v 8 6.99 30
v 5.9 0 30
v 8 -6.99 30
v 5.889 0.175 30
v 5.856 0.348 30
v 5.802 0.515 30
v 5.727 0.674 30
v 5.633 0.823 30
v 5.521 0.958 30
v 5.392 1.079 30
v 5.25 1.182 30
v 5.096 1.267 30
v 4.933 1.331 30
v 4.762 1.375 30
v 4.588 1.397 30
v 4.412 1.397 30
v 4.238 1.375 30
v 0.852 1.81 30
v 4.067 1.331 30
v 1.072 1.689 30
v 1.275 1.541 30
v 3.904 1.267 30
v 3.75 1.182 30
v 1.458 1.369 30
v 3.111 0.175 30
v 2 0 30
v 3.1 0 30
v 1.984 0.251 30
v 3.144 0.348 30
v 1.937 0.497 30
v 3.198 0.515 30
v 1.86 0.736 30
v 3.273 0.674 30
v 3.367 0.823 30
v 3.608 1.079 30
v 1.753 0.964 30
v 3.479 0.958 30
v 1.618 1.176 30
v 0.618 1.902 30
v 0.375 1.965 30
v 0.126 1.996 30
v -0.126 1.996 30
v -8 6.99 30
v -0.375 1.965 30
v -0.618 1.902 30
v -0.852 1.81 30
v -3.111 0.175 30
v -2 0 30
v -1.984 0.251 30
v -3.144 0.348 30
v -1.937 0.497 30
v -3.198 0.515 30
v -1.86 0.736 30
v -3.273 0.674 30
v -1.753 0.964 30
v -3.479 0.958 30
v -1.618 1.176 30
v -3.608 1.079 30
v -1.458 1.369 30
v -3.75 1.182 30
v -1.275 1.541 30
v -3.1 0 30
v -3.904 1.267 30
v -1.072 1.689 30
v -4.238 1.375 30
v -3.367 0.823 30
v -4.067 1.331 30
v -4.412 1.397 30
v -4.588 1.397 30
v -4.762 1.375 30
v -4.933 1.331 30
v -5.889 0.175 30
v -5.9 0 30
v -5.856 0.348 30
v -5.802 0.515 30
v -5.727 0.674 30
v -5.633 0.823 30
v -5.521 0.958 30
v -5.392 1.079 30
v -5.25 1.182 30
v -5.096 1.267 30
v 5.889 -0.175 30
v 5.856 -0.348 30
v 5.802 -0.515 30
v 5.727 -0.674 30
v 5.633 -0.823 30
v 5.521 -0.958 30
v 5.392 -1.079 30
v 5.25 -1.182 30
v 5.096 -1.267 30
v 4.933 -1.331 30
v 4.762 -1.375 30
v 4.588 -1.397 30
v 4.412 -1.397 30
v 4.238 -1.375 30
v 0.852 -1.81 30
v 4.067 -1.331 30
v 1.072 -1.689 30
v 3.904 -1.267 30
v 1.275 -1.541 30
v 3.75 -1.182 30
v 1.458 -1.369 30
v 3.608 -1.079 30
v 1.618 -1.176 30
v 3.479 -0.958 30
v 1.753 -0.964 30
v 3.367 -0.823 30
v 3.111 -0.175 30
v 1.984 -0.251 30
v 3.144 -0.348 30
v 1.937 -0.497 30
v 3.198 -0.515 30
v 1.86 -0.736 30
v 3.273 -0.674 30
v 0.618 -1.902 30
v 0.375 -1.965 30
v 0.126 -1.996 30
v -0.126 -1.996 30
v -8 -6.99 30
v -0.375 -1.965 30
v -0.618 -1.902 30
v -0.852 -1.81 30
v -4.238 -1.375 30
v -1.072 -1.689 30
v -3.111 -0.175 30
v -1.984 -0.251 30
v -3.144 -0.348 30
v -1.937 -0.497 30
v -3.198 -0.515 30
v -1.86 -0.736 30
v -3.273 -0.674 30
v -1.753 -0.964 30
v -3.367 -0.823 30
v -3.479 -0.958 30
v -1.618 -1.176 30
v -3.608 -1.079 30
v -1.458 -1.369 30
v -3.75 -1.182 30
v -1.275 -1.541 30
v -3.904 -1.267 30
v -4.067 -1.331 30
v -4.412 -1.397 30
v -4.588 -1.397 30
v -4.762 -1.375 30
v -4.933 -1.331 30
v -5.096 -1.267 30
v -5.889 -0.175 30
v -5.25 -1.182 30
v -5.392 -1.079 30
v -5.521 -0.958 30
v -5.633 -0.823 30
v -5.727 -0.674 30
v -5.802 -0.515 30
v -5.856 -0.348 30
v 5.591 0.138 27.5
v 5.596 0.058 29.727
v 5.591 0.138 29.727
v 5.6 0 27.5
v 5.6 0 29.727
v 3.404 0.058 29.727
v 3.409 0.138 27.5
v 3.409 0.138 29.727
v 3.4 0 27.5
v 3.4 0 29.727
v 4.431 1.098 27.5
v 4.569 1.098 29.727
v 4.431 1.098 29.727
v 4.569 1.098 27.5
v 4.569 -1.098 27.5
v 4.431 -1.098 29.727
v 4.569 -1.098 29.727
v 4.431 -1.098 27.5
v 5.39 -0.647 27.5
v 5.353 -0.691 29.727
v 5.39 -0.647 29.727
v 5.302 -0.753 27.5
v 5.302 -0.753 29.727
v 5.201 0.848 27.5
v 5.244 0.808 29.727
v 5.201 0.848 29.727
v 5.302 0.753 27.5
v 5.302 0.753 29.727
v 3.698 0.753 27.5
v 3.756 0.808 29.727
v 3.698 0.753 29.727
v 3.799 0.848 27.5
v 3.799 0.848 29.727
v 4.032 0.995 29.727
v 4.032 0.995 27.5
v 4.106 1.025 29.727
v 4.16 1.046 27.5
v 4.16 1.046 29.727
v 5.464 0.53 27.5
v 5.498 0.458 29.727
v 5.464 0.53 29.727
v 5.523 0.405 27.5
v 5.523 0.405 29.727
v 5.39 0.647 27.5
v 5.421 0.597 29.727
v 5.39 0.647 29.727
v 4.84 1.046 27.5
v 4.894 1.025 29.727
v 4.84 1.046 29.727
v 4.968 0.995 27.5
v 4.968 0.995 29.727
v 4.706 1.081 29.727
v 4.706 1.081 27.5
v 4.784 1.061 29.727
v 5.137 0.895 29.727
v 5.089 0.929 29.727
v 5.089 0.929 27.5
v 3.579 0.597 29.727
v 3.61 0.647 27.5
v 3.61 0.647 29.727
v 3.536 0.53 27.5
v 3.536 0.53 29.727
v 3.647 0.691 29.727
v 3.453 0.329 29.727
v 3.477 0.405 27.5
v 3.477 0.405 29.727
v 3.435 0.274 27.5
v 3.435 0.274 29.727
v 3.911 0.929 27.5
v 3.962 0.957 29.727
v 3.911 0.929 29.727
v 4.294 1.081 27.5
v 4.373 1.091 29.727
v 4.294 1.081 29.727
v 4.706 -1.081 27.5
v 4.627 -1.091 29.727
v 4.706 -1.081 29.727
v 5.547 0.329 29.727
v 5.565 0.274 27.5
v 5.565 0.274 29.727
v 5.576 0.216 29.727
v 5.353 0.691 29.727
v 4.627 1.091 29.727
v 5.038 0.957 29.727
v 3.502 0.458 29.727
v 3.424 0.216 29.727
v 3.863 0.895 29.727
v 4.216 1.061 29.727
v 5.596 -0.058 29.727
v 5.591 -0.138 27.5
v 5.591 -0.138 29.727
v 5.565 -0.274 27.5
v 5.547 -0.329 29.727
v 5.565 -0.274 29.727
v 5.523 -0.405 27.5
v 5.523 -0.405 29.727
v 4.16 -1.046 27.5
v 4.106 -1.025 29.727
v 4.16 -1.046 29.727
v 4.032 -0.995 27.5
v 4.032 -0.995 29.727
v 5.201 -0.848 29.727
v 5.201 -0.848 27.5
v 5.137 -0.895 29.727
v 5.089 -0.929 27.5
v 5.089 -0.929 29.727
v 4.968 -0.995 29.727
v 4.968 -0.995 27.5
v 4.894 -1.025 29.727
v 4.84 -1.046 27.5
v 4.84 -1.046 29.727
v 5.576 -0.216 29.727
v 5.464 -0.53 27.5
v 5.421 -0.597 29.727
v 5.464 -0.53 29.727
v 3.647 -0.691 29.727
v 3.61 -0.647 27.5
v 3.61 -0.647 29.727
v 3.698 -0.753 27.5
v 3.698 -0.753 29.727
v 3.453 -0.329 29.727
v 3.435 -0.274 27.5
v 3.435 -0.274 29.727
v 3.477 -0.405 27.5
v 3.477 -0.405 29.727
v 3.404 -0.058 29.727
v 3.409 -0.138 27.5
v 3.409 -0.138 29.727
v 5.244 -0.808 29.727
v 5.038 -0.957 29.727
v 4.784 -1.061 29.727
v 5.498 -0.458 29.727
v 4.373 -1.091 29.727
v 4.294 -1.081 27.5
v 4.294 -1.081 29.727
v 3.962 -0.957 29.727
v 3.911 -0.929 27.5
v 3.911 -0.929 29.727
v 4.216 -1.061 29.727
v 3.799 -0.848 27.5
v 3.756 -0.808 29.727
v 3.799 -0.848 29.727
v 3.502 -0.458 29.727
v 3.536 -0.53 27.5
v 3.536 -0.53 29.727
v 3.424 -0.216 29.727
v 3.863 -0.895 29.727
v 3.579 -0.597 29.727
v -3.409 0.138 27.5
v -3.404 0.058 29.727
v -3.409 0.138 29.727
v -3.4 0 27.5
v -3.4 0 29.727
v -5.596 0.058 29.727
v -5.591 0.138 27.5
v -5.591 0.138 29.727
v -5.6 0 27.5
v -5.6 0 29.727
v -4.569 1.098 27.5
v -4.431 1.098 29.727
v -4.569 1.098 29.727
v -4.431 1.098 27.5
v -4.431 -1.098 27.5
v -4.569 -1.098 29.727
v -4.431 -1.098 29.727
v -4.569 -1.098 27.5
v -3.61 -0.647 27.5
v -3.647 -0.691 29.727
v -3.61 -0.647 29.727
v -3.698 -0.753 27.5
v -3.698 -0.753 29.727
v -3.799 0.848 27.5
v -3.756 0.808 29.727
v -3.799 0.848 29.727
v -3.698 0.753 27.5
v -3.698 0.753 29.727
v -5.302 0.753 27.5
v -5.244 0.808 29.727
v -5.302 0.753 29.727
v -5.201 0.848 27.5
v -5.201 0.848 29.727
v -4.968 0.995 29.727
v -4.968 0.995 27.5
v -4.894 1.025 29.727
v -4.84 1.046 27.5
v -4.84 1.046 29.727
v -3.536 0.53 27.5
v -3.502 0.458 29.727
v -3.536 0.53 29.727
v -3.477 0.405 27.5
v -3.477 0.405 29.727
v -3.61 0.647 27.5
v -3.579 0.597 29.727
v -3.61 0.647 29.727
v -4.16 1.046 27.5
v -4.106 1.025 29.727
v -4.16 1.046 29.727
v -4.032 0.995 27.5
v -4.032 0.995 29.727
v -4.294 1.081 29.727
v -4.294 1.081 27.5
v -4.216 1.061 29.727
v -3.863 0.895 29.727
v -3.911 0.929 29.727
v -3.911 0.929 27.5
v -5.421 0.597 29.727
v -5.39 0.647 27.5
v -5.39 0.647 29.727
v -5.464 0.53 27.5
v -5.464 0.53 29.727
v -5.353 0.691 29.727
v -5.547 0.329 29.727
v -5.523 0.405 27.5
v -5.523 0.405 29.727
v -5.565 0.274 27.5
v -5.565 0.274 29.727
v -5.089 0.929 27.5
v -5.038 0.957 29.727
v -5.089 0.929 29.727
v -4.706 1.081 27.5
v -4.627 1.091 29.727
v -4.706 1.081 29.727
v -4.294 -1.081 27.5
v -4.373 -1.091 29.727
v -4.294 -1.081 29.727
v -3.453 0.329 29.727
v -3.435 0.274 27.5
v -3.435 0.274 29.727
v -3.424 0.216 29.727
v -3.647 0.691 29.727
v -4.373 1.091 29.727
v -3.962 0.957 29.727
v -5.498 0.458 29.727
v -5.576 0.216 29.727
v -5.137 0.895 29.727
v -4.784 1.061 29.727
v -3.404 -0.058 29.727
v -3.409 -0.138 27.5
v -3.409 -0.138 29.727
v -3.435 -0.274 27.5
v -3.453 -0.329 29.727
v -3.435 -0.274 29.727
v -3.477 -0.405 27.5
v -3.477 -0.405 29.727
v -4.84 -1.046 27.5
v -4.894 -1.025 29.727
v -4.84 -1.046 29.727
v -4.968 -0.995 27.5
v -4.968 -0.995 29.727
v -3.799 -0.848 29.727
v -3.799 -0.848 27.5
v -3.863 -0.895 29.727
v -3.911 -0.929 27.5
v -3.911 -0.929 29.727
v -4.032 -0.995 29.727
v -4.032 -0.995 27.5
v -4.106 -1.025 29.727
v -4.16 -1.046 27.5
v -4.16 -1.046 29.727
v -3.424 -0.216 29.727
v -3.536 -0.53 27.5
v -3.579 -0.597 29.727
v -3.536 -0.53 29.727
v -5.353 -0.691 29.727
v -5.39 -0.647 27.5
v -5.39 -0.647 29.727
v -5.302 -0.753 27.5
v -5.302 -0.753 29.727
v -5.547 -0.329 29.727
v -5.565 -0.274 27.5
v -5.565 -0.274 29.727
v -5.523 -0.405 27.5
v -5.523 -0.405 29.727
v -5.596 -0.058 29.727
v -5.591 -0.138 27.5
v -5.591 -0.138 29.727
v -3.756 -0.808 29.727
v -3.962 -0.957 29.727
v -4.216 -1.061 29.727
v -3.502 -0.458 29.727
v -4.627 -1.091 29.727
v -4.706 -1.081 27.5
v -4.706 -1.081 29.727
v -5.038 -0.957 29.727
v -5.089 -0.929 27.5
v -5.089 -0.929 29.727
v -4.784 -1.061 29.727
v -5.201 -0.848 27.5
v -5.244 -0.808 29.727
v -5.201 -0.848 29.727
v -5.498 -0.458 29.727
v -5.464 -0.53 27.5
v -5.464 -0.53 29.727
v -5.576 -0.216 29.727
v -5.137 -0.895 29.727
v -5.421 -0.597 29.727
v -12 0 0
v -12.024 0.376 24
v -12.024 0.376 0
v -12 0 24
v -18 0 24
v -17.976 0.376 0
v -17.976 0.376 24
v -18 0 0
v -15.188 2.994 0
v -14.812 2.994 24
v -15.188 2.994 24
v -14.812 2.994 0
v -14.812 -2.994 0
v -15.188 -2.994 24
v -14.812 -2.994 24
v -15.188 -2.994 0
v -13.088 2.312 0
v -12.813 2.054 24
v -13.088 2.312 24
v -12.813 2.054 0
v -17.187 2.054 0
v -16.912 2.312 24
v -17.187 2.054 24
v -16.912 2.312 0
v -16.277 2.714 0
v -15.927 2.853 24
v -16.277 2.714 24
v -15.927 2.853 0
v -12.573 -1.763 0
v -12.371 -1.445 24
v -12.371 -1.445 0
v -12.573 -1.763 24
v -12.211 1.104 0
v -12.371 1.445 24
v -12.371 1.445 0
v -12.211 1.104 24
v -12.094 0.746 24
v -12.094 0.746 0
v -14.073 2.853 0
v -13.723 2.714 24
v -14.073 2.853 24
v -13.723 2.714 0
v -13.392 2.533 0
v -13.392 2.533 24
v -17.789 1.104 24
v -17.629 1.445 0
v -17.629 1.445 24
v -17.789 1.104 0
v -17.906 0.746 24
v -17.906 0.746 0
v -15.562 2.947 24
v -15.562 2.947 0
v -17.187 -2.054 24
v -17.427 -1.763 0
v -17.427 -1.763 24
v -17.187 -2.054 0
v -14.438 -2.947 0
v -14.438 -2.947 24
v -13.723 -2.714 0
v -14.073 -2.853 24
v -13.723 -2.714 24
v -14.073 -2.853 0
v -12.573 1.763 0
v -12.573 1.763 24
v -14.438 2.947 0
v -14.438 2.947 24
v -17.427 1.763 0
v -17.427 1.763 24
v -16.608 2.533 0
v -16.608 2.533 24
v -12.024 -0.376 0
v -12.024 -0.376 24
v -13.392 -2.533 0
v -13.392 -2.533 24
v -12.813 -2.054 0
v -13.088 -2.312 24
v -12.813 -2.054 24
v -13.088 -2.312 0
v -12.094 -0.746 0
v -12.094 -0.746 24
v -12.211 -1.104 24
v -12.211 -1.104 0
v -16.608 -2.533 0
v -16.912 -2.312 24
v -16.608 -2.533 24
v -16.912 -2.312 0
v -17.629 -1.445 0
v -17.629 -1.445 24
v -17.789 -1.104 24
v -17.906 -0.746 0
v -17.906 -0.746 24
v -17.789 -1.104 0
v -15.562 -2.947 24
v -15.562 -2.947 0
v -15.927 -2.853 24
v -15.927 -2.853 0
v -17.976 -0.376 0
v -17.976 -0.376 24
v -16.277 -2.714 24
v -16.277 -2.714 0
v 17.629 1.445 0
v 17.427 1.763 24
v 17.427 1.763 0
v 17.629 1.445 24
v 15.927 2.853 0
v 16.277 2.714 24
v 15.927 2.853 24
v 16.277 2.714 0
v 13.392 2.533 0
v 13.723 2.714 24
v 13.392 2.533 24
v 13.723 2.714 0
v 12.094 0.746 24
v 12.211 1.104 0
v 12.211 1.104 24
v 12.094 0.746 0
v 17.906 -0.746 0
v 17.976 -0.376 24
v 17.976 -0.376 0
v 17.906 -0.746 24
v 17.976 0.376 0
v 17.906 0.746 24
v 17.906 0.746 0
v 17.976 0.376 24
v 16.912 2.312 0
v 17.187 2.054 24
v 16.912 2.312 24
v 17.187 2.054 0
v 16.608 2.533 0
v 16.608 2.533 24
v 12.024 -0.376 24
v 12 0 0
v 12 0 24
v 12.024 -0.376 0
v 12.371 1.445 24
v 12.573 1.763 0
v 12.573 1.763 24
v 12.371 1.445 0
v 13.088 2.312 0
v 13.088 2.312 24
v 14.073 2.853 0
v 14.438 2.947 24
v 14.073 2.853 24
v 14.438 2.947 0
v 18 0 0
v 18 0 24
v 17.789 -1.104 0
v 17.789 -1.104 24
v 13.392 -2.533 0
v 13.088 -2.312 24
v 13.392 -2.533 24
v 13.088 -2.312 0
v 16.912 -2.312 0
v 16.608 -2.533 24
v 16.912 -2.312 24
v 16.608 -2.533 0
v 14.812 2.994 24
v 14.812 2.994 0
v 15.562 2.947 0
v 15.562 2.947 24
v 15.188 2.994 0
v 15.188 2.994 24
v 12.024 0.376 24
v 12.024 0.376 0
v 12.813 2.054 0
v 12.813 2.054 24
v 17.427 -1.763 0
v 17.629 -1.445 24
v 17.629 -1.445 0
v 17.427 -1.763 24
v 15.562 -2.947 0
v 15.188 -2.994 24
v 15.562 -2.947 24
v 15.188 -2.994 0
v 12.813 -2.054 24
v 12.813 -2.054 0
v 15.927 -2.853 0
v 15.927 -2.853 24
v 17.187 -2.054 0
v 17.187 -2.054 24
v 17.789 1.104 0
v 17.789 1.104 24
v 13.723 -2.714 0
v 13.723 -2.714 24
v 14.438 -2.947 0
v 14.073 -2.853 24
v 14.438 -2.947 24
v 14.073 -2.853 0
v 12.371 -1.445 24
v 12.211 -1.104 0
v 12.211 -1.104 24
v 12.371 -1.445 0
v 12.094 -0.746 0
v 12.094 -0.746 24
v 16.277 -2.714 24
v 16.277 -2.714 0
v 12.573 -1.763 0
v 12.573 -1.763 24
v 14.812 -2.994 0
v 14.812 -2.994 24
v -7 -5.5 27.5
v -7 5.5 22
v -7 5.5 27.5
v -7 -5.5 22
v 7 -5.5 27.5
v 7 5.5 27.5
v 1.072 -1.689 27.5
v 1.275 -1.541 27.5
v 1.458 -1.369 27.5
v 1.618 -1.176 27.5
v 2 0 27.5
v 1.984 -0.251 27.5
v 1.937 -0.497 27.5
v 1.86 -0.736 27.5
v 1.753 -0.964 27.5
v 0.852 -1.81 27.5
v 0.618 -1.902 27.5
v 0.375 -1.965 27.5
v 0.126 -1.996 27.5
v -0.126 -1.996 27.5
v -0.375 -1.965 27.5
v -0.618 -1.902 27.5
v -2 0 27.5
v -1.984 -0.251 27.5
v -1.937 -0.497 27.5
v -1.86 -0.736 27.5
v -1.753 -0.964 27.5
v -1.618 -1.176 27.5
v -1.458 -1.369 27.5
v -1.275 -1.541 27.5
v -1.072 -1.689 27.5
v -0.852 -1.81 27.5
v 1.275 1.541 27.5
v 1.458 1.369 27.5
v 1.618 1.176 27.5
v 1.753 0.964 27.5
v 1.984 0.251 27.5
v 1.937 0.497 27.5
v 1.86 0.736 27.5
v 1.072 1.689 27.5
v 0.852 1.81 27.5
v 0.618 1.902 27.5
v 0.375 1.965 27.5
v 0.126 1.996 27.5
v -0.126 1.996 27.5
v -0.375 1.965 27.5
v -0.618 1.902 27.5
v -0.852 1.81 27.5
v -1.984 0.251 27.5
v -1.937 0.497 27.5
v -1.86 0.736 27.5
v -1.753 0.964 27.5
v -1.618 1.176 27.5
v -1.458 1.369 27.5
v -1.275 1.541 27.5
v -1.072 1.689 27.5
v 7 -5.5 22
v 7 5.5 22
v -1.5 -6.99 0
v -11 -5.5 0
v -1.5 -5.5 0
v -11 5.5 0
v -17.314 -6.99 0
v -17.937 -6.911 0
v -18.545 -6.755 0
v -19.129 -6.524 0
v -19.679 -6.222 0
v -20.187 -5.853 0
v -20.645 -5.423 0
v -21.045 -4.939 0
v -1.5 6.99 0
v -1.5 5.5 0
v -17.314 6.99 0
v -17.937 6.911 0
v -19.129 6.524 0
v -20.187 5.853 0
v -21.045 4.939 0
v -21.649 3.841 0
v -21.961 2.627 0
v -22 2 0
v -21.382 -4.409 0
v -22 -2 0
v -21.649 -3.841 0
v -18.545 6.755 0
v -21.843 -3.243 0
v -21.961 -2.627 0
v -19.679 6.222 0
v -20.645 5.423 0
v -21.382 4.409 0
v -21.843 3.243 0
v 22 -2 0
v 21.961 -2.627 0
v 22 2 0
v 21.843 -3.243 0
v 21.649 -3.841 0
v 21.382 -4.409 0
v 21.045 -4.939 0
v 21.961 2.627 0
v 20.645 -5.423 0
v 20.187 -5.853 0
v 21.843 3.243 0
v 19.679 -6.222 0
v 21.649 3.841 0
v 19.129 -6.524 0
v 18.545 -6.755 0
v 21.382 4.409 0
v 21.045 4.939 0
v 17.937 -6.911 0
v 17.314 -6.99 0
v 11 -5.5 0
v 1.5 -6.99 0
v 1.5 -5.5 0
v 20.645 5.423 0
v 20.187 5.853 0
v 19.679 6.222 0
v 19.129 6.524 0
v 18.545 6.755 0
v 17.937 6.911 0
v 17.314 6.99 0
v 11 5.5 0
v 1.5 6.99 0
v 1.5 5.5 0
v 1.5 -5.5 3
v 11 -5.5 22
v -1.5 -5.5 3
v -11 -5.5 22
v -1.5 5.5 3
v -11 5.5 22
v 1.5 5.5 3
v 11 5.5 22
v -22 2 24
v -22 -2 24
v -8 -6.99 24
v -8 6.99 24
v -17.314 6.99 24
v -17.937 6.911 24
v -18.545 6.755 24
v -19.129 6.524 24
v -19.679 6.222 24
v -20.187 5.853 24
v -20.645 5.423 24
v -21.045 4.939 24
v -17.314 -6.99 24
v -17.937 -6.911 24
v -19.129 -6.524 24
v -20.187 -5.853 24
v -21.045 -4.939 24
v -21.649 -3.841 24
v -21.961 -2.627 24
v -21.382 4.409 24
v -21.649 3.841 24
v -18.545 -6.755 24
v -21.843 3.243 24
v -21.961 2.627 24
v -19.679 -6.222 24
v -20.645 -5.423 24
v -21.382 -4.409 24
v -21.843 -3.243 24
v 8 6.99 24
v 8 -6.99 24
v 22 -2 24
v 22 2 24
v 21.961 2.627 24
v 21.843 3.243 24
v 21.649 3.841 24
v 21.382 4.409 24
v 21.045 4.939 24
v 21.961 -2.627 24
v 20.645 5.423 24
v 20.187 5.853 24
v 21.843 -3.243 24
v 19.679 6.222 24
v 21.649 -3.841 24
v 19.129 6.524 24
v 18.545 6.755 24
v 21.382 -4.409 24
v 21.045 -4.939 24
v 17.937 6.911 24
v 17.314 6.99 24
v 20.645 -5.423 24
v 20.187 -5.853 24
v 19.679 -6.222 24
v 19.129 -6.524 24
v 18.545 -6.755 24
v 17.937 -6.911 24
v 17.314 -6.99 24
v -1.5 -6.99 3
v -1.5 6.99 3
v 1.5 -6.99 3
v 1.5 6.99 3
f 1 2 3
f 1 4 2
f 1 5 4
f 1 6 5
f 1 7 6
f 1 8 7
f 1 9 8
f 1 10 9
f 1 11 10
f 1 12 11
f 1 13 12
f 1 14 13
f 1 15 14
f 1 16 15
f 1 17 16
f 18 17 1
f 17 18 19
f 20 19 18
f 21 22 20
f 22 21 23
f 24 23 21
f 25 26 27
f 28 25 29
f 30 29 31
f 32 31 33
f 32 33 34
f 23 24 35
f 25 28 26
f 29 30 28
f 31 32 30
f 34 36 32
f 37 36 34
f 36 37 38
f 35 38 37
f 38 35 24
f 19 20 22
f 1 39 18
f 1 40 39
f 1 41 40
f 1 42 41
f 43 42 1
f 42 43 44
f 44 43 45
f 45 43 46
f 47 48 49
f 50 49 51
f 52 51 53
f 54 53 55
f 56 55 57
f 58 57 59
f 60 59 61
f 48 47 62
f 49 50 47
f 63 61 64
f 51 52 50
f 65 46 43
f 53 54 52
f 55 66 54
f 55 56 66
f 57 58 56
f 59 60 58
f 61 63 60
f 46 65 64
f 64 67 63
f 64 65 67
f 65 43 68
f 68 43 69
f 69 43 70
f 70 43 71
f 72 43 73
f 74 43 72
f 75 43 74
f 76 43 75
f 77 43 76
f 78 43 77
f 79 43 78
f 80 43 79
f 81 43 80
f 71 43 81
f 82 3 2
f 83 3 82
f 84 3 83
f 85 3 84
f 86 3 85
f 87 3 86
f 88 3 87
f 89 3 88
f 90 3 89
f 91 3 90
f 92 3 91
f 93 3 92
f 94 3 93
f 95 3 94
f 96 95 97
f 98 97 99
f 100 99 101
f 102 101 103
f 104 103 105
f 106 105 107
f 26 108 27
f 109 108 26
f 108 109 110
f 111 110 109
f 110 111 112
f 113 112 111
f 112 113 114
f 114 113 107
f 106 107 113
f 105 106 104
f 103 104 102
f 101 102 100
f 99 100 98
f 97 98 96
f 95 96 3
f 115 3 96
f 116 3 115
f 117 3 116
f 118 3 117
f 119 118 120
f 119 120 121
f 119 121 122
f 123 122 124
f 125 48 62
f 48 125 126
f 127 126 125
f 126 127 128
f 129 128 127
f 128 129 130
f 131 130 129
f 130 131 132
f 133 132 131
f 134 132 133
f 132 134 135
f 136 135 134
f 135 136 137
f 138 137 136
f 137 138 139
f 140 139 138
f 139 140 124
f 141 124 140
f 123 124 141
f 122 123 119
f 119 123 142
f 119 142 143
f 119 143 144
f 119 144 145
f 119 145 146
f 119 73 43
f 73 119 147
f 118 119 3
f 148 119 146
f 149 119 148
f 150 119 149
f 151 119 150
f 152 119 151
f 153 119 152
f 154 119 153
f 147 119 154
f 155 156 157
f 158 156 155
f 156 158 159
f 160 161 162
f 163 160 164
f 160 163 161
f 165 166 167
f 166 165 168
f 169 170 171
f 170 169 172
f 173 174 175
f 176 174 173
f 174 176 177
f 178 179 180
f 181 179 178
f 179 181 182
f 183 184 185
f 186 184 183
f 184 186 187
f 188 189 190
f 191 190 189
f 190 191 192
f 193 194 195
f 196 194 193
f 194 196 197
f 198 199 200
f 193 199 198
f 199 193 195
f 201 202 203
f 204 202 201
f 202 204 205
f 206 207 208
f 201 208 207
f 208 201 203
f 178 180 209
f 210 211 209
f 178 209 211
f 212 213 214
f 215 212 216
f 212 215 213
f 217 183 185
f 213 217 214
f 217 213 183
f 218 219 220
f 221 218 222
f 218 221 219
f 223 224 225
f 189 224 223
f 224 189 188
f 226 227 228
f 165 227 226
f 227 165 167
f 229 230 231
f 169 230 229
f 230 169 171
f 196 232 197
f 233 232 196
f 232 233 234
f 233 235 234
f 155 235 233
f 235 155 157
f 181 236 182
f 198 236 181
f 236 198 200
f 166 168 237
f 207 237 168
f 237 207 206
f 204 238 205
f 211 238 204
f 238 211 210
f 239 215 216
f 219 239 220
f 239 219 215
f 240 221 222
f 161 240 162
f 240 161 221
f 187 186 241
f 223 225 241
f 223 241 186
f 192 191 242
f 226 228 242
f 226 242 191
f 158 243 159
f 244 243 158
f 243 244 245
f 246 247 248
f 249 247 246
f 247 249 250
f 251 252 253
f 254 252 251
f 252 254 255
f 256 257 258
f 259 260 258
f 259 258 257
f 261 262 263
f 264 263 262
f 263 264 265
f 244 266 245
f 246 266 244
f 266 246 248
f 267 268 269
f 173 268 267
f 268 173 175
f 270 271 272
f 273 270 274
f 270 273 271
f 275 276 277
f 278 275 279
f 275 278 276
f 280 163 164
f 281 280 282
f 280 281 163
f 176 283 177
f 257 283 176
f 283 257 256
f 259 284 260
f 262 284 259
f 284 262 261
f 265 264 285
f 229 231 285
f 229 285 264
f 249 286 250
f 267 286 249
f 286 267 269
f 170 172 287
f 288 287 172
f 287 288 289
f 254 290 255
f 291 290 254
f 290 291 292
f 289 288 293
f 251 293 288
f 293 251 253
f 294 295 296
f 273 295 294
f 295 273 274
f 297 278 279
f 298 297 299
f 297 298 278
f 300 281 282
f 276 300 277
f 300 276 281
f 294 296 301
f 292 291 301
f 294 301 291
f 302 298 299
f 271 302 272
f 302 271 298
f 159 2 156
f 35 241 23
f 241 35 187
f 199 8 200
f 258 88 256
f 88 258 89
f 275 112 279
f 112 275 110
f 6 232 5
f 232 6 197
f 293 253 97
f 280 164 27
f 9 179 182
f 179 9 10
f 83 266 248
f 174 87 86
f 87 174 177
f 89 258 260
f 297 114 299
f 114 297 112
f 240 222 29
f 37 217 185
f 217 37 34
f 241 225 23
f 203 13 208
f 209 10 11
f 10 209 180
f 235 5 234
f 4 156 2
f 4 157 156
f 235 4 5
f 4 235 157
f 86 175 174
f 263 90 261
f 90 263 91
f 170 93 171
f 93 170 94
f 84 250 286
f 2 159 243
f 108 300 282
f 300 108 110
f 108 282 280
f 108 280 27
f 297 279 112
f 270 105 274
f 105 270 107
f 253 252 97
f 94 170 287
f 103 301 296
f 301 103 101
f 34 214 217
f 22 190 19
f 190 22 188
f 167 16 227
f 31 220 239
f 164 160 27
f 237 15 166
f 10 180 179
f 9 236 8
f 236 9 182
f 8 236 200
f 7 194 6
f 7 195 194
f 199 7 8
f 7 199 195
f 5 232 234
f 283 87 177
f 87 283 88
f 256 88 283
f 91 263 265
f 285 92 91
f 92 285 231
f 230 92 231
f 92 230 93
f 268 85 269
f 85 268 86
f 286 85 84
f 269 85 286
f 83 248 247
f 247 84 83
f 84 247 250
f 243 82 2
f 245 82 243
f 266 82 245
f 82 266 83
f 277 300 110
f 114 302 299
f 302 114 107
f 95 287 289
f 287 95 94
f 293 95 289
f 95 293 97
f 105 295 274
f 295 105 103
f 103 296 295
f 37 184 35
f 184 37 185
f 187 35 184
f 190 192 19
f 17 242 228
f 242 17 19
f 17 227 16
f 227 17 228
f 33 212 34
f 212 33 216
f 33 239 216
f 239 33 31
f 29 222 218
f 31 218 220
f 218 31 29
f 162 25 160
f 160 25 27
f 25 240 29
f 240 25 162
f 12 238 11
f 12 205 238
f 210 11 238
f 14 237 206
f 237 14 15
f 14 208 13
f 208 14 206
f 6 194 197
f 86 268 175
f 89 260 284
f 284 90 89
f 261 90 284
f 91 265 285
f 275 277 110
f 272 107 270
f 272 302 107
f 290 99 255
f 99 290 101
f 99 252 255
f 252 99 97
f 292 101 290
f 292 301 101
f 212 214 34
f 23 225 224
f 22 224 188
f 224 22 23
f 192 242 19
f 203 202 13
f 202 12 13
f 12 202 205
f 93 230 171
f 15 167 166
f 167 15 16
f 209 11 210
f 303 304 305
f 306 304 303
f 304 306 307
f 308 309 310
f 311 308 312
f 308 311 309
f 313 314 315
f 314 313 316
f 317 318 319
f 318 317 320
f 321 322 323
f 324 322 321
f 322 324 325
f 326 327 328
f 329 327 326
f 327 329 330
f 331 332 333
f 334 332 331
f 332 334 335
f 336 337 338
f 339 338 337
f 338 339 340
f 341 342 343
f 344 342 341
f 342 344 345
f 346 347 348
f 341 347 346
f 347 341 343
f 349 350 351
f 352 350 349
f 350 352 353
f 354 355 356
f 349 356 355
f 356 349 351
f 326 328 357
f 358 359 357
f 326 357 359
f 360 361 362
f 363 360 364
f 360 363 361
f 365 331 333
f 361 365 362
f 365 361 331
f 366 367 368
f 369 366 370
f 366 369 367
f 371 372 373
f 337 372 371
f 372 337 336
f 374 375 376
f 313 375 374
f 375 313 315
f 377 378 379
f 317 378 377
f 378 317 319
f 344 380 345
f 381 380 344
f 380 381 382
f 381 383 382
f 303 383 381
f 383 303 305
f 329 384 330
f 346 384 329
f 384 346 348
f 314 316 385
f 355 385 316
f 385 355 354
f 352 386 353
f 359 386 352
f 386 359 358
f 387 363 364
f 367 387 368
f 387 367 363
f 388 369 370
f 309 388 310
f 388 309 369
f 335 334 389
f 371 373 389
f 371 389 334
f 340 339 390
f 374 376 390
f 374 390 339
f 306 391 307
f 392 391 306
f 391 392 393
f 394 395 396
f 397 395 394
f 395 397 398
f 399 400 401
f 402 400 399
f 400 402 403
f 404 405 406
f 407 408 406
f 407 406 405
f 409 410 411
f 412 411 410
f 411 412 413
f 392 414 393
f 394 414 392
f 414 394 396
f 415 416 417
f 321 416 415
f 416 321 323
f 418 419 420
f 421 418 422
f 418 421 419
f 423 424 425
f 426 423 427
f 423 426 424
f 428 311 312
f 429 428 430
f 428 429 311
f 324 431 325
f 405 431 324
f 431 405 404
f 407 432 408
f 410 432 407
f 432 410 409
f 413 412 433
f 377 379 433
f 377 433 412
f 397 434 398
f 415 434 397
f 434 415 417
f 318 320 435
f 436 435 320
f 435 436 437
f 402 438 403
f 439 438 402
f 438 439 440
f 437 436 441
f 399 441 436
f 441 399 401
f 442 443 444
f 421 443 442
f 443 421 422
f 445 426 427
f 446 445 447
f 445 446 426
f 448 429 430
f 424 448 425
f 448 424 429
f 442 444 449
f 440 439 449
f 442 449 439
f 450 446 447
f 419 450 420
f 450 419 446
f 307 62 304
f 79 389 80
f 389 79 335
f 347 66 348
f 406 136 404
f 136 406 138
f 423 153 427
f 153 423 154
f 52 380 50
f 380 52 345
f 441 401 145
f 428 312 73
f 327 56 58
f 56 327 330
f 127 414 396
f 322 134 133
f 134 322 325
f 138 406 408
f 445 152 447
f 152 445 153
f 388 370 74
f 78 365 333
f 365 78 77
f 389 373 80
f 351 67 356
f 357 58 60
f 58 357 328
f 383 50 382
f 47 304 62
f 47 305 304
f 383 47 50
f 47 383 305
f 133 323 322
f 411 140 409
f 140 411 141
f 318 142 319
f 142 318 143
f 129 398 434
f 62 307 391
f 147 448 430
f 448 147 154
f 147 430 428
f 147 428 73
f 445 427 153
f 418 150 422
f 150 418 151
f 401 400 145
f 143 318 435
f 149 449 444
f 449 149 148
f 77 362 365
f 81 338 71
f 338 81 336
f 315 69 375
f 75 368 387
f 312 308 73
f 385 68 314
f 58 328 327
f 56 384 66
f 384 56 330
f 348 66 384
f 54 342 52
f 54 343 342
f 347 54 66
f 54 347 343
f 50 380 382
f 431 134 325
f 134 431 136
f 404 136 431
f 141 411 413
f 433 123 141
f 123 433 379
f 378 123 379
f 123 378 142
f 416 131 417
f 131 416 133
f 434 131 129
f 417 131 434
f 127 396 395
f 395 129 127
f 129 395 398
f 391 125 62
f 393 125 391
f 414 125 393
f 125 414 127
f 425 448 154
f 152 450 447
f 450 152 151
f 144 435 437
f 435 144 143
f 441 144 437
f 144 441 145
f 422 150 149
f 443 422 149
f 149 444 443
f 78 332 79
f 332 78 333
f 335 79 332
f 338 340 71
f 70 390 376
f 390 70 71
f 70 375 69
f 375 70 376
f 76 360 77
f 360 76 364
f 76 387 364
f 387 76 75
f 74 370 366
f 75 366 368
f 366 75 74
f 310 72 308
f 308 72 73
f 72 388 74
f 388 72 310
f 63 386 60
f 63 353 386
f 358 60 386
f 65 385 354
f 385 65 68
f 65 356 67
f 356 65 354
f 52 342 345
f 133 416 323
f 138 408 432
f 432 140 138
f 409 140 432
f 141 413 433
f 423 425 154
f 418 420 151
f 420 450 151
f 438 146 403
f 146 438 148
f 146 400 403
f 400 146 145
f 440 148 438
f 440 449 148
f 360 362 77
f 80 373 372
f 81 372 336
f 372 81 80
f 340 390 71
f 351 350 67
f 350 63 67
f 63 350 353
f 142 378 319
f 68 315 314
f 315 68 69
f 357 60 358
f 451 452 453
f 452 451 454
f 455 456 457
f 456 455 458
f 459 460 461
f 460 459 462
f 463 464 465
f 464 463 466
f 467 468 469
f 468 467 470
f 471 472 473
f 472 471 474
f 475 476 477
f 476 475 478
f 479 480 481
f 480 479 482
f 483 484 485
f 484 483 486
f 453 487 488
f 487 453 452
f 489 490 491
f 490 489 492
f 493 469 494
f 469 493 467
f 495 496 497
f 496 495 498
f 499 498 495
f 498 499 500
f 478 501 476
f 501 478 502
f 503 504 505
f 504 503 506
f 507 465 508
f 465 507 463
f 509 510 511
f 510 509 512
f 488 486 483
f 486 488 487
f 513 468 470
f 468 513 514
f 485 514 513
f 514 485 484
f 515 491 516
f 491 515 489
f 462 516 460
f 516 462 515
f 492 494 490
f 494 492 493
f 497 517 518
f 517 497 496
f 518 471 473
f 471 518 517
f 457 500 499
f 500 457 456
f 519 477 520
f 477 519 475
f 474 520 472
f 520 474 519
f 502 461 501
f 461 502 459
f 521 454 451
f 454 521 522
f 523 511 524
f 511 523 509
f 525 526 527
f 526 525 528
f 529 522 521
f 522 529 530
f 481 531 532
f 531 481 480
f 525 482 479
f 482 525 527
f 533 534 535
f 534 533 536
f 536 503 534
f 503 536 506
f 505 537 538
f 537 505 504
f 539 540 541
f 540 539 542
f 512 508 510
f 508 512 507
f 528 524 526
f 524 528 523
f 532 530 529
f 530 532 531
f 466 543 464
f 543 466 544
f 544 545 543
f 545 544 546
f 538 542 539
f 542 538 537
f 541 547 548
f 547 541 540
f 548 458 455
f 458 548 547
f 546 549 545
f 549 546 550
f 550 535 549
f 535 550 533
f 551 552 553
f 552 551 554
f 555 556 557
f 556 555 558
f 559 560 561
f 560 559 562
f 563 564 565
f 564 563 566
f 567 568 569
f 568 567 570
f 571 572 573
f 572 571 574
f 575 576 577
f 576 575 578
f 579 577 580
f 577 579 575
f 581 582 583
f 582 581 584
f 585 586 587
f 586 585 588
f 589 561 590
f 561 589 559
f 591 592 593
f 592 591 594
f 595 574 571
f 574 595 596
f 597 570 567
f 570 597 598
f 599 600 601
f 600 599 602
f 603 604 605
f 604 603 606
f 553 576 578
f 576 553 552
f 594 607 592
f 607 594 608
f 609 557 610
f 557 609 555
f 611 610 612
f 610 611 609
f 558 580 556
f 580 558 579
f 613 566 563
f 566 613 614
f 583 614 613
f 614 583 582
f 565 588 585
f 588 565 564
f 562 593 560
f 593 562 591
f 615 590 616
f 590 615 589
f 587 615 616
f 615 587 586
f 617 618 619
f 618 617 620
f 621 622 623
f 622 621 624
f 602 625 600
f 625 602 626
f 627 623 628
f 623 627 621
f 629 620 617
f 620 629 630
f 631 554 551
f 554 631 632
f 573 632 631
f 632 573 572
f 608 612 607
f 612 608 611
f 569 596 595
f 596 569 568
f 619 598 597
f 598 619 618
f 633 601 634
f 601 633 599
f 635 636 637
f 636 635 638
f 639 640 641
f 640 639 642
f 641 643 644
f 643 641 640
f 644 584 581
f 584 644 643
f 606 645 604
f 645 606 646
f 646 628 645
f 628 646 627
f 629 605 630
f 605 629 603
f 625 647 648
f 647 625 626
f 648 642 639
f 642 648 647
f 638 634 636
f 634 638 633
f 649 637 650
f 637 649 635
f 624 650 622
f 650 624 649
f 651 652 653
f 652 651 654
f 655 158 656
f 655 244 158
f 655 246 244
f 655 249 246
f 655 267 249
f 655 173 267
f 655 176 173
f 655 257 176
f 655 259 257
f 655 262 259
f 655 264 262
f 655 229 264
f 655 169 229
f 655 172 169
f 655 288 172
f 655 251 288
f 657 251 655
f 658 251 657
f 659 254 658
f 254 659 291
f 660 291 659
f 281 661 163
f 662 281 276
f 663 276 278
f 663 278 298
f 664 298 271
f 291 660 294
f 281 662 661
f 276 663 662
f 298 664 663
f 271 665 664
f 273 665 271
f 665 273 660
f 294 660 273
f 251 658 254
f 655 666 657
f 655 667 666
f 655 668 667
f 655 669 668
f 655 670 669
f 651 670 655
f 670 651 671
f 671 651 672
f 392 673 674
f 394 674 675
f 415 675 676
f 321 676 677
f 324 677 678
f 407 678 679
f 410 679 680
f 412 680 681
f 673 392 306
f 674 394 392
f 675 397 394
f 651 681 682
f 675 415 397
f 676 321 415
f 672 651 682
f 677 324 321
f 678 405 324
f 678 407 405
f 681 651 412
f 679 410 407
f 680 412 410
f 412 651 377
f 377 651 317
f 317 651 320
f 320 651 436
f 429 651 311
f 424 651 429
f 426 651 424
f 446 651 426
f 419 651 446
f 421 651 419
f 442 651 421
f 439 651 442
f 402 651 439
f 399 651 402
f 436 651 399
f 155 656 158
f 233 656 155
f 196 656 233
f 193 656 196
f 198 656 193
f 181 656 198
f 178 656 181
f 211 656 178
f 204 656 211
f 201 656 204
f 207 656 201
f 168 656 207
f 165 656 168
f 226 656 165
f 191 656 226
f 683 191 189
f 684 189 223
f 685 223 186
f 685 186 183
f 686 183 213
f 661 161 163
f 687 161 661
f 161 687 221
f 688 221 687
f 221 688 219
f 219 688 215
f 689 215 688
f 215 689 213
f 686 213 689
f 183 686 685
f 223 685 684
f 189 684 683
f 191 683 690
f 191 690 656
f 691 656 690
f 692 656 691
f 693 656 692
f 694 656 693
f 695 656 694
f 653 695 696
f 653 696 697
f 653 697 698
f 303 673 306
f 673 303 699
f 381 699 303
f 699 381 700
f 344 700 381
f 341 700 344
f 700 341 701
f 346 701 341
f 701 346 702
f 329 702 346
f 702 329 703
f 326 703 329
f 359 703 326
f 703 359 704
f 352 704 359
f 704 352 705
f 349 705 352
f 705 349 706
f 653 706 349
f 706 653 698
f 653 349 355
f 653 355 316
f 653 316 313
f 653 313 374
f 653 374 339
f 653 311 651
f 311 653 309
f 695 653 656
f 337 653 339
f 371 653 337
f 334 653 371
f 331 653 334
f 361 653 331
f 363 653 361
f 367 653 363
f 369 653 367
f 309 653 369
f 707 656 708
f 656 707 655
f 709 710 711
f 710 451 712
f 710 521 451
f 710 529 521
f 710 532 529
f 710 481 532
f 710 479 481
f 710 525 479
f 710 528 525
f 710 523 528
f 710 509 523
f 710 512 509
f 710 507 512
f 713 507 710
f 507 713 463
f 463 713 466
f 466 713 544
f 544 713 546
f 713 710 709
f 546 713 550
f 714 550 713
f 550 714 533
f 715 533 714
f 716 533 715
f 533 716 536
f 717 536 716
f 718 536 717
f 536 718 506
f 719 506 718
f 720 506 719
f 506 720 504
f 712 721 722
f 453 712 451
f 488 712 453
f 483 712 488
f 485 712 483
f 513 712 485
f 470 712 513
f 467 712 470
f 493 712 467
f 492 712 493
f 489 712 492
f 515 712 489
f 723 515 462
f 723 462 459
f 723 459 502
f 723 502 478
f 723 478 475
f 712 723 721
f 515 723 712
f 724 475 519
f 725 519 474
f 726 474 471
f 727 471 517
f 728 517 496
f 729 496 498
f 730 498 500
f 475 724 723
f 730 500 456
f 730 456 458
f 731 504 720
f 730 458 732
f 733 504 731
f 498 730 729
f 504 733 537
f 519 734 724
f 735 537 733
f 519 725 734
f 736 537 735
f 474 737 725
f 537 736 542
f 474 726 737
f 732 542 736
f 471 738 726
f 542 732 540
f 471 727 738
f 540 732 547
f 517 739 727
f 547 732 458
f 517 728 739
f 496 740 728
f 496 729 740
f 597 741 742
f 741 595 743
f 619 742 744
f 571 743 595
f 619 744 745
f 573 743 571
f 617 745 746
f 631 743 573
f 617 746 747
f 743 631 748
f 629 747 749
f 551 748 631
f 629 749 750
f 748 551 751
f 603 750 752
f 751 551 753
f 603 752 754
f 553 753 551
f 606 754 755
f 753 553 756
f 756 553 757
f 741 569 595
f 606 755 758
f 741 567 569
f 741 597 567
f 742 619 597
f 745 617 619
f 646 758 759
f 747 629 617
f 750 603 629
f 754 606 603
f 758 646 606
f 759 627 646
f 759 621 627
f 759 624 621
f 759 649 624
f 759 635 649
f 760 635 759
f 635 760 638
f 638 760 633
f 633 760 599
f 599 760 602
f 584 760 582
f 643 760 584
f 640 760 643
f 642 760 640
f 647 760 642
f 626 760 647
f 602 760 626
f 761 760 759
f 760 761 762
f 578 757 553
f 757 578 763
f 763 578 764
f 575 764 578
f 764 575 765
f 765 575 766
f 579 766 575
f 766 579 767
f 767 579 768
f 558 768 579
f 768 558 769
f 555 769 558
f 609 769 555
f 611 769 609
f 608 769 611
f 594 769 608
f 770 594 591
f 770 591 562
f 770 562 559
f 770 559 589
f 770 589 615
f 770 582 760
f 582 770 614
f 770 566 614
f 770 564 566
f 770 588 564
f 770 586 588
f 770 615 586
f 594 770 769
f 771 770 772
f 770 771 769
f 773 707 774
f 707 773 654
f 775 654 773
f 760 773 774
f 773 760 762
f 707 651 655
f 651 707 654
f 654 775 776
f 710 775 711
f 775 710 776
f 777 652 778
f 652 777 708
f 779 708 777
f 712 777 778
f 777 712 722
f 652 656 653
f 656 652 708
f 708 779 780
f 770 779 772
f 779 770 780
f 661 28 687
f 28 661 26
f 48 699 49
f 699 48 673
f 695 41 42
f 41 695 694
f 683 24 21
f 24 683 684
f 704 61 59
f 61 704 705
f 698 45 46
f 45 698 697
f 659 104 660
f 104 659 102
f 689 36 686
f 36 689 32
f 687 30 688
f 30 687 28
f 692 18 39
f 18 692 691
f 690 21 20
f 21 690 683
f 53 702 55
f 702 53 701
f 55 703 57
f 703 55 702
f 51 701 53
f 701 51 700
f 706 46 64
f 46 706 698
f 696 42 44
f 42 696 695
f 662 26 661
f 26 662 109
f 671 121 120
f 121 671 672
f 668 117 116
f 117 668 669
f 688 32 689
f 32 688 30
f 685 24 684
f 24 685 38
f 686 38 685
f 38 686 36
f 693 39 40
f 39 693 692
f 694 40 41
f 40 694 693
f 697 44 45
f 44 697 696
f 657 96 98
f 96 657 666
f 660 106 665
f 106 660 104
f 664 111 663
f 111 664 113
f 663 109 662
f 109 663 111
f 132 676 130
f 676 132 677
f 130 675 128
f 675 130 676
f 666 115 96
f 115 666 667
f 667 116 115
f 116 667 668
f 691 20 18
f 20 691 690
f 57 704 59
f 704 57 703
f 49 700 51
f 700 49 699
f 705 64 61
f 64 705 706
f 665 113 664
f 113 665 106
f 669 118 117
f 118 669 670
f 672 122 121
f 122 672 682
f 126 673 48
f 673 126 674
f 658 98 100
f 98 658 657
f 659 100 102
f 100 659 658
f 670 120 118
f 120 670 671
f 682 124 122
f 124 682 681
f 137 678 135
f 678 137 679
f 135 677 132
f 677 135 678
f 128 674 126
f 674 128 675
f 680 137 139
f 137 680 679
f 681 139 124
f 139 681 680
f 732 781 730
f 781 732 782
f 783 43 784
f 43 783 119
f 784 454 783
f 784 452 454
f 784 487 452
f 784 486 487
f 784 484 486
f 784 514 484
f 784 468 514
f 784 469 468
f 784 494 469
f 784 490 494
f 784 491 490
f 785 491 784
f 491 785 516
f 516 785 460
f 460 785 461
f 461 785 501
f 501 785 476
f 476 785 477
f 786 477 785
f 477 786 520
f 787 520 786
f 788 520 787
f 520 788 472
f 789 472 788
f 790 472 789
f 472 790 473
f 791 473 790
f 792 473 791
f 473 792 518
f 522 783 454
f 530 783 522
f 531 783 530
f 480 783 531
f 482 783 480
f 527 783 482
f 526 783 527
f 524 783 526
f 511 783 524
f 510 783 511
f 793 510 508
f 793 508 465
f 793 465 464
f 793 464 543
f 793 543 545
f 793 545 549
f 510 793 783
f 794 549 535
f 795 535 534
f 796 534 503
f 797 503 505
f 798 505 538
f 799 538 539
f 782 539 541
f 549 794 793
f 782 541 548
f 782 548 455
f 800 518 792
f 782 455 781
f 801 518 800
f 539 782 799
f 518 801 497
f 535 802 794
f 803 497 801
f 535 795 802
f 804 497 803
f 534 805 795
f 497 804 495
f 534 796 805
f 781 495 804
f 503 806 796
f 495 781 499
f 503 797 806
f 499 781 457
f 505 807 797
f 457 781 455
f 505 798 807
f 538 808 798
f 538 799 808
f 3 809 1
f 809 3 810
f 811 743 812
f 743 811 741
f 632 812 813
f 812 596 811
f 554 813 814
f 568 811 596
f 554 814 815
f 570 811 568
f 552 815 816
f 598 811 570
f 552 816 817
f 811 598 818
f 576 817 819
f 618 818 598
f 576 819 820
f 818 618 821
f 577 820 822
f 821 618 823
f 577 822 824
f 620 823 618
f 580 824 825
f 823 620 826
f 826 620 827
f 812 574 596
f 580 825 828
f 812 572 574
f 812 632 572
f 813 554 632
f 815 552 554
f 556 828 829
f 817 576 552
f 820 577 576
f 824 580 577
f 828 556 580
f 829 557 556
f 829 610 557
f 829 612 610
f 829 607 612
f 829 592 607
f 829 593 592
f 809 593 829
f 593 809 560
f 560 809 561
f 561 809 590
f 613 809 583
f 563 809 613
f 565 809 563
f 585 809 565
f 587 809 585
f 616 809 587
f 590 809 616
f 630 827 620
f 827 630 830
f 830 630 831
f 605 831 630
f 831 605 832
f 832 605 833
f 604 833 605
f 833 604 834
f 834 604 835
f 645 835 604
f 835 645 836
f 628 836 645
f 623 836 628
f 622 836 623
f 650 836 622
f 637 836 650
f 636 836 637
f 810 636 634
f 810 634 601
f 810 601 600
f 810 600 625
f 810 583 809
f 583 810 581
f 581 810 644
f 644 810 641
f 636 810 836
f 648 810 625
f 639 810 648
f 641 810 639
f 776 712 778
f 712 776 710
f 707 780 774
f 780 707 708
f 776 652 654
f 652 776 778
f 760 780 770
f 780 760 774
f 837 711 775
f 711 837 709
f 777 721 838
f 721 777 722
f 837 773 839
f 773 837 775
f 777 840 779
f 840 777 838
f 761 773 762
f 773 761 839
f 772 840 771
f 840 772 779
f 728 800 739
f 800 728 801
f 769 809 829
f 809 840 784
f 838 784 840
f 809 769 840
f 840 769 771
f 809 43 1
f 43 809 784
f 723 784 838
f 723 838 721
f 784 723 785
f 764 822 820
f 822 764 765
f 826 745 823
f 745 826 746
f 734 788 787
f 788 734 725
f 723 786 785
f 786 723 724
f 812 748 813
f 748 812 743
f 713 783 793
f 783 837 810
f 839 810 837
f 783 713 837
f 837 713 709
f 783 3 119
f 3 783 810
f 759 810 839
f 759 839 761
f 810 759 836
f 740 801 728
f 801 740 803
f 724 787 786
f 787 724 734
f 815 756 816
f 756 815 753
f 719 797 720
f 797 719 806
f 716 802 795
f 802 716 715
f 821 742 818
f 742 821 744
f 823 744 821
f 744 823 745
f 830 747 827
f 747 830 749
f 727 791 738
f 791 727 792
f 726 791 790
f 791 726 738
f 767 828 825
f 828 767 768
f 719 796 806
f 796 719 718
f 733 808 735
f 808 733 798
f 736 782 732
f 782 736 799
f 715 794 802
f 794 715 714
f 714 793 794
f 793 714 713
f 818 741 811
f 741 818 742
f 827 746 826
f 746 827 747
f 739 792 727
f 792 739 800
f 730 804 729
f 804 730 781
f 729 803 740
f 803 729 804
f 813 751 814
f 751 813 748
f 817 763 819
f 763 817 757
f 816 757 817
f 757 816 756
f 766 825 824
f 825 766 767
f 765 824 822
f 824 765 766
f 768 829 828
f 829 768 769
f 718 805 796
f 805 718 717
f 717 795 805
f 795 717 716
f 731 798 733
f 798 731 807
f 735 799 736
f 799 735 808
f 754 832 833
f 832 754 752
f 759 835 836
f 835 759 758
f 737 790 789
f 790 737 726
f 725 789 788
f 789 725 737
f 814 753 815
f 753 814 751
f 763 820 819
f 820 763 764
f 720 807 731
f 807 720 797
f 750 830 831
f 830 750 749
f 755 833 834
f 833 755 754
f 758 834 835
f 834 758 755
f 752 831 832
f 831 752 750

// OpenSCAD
$fn = 50;


difference() {
	union() {
		hull() {
			translate(v = [-17.0000000000, 2.0000000000, 0]) {
				cylinder(h = 30, r = 5);
			}
			translate(v = [17.0000000000, 2.0000000000, 0]) {
				cylinder(h = 30, r = 5);
			}
			translate(v = [-17.0000000000, -2.0000000000, 0]) {
				cylinder(h = 30, r = 5);
			}
			translate(v = [17.0000000000, -2.0000000000, 0]) {
				cylinder(h = 30, r = 5);
			}
		}
	}
	union() {
		translate(v = [4.5000000000, 0, 30]) {
			rotate(a = [0, 0, 0]) {
				difference() {
					union() {
						translate(v = [0, 0, -4.0000000000]) {
							cylinder(h = 4, r = 0.8500000000);
						}
						translate(v = [0, 0, -4.0000000000]) {
							cylinder(h = 4, r = 1.1000000000);
						}
						translate(v = [0, 0, -0.5000000000]) {
							cylinder(h = 0.5000000000, r1 = 0.8500000000, r2 = 1.4000000000);
						}
						translate(v = [0, 0, -4.0000000000]) {
							cylinder(h = 4, r = 0.8500000000);
						}
					}
					union();
				}
			}
		}
		translate(v = [-4.5000000000, 0, 30]) {
			rotate(a = [0, 0, 0]) {
				difference() {
					union() {
						translate(v = [0, 0, -4.0000000000]) {
							cylinder(h = 4, r = 0.8500000000);
						}
						translate(v = [0, 0, -4.0000000000]) {
							cylinder(h = 4, r = 1.1000000000);
						}
						translate(v = [0, 0, -0.5000000000]) {
							cylinder(h = 0.5000000000, r1 = 0.8500000000, r2 = 1.4000000000);
						}
						translate(v = [0, 0, -4.0000000000]) {
							cylinder(h = 4, r = 0.8500000000);
						}
					}
					union();
				}
			}
		}
		translate(v = [-15.0000000000, 0.0000000000, -100.0000000000]) {
			cylinder(h = 200, r = 3.0000000000);
		}
		translate(v = [15.0000000000, 0.0000000000, -100.0000000000]) {
			cylinder(h = 200, r = 3.0000000000);
		}
		translate(v = [15.0000000000, 0.0000000000, -100.0000000000]) {
			cylinder(h = 200, r = 3.0000000000);
		}
		translate(v = [-15.0000000000, 0.0000000000, -100.0000000000]) {
			cylinder(h = 200, r = 1.5000000000);
		}
		translate(v = [15.0000000000, 0.0000000000, -100.0000000000]) {
			cylinder(h = 200, r = 1.5000000000);
		}
		translate(v = [-15.0000000000, 0.0000000000, -100.0000000000]) {
			cylinder(h = 200, r = 1.5000000000);
		}
		translate(v = [15.0000000000, 0.0000000000, -100.0000000000]) {
			cylinder(h = 200, r = 1.5000000000);
		}
		translate(v = [-15.0000000000, 0.0000000000, -100.0000000000]) {
			cylinder(h = 200, r = 1.5000000000);
		}
		translate(v = [15.0000000000, 0.0000000000, -100.0000000000]) {
			cylinder(h = 200, r = 1.5000000000);
		}
		translate(v = [-7.0000000000, -5.5000000000, 0]) {
			cube(size = [14, 11, 27.5000000000]);
		}
		cylinder(h = 30, r = 2.0000000000);
		translate(v = [-22.0000000000, -7.0000000000, 24]) {
			cube(size = [14, 14, 6]);
		}
		translate(v = [8.0000000000, -7.0000000000, 24]) {
			cube(size = [14, 14, 6]);
		}
		translate(v = [-11.0000000000, -5.5000000000, 0]) {
			cube(size = [22, 11, 22]);
		}
		translate(v = [-1.5000000000, -22.5000000000, 0]) {
			cube(size = [3, 45, 3]);
		}
	}
}
